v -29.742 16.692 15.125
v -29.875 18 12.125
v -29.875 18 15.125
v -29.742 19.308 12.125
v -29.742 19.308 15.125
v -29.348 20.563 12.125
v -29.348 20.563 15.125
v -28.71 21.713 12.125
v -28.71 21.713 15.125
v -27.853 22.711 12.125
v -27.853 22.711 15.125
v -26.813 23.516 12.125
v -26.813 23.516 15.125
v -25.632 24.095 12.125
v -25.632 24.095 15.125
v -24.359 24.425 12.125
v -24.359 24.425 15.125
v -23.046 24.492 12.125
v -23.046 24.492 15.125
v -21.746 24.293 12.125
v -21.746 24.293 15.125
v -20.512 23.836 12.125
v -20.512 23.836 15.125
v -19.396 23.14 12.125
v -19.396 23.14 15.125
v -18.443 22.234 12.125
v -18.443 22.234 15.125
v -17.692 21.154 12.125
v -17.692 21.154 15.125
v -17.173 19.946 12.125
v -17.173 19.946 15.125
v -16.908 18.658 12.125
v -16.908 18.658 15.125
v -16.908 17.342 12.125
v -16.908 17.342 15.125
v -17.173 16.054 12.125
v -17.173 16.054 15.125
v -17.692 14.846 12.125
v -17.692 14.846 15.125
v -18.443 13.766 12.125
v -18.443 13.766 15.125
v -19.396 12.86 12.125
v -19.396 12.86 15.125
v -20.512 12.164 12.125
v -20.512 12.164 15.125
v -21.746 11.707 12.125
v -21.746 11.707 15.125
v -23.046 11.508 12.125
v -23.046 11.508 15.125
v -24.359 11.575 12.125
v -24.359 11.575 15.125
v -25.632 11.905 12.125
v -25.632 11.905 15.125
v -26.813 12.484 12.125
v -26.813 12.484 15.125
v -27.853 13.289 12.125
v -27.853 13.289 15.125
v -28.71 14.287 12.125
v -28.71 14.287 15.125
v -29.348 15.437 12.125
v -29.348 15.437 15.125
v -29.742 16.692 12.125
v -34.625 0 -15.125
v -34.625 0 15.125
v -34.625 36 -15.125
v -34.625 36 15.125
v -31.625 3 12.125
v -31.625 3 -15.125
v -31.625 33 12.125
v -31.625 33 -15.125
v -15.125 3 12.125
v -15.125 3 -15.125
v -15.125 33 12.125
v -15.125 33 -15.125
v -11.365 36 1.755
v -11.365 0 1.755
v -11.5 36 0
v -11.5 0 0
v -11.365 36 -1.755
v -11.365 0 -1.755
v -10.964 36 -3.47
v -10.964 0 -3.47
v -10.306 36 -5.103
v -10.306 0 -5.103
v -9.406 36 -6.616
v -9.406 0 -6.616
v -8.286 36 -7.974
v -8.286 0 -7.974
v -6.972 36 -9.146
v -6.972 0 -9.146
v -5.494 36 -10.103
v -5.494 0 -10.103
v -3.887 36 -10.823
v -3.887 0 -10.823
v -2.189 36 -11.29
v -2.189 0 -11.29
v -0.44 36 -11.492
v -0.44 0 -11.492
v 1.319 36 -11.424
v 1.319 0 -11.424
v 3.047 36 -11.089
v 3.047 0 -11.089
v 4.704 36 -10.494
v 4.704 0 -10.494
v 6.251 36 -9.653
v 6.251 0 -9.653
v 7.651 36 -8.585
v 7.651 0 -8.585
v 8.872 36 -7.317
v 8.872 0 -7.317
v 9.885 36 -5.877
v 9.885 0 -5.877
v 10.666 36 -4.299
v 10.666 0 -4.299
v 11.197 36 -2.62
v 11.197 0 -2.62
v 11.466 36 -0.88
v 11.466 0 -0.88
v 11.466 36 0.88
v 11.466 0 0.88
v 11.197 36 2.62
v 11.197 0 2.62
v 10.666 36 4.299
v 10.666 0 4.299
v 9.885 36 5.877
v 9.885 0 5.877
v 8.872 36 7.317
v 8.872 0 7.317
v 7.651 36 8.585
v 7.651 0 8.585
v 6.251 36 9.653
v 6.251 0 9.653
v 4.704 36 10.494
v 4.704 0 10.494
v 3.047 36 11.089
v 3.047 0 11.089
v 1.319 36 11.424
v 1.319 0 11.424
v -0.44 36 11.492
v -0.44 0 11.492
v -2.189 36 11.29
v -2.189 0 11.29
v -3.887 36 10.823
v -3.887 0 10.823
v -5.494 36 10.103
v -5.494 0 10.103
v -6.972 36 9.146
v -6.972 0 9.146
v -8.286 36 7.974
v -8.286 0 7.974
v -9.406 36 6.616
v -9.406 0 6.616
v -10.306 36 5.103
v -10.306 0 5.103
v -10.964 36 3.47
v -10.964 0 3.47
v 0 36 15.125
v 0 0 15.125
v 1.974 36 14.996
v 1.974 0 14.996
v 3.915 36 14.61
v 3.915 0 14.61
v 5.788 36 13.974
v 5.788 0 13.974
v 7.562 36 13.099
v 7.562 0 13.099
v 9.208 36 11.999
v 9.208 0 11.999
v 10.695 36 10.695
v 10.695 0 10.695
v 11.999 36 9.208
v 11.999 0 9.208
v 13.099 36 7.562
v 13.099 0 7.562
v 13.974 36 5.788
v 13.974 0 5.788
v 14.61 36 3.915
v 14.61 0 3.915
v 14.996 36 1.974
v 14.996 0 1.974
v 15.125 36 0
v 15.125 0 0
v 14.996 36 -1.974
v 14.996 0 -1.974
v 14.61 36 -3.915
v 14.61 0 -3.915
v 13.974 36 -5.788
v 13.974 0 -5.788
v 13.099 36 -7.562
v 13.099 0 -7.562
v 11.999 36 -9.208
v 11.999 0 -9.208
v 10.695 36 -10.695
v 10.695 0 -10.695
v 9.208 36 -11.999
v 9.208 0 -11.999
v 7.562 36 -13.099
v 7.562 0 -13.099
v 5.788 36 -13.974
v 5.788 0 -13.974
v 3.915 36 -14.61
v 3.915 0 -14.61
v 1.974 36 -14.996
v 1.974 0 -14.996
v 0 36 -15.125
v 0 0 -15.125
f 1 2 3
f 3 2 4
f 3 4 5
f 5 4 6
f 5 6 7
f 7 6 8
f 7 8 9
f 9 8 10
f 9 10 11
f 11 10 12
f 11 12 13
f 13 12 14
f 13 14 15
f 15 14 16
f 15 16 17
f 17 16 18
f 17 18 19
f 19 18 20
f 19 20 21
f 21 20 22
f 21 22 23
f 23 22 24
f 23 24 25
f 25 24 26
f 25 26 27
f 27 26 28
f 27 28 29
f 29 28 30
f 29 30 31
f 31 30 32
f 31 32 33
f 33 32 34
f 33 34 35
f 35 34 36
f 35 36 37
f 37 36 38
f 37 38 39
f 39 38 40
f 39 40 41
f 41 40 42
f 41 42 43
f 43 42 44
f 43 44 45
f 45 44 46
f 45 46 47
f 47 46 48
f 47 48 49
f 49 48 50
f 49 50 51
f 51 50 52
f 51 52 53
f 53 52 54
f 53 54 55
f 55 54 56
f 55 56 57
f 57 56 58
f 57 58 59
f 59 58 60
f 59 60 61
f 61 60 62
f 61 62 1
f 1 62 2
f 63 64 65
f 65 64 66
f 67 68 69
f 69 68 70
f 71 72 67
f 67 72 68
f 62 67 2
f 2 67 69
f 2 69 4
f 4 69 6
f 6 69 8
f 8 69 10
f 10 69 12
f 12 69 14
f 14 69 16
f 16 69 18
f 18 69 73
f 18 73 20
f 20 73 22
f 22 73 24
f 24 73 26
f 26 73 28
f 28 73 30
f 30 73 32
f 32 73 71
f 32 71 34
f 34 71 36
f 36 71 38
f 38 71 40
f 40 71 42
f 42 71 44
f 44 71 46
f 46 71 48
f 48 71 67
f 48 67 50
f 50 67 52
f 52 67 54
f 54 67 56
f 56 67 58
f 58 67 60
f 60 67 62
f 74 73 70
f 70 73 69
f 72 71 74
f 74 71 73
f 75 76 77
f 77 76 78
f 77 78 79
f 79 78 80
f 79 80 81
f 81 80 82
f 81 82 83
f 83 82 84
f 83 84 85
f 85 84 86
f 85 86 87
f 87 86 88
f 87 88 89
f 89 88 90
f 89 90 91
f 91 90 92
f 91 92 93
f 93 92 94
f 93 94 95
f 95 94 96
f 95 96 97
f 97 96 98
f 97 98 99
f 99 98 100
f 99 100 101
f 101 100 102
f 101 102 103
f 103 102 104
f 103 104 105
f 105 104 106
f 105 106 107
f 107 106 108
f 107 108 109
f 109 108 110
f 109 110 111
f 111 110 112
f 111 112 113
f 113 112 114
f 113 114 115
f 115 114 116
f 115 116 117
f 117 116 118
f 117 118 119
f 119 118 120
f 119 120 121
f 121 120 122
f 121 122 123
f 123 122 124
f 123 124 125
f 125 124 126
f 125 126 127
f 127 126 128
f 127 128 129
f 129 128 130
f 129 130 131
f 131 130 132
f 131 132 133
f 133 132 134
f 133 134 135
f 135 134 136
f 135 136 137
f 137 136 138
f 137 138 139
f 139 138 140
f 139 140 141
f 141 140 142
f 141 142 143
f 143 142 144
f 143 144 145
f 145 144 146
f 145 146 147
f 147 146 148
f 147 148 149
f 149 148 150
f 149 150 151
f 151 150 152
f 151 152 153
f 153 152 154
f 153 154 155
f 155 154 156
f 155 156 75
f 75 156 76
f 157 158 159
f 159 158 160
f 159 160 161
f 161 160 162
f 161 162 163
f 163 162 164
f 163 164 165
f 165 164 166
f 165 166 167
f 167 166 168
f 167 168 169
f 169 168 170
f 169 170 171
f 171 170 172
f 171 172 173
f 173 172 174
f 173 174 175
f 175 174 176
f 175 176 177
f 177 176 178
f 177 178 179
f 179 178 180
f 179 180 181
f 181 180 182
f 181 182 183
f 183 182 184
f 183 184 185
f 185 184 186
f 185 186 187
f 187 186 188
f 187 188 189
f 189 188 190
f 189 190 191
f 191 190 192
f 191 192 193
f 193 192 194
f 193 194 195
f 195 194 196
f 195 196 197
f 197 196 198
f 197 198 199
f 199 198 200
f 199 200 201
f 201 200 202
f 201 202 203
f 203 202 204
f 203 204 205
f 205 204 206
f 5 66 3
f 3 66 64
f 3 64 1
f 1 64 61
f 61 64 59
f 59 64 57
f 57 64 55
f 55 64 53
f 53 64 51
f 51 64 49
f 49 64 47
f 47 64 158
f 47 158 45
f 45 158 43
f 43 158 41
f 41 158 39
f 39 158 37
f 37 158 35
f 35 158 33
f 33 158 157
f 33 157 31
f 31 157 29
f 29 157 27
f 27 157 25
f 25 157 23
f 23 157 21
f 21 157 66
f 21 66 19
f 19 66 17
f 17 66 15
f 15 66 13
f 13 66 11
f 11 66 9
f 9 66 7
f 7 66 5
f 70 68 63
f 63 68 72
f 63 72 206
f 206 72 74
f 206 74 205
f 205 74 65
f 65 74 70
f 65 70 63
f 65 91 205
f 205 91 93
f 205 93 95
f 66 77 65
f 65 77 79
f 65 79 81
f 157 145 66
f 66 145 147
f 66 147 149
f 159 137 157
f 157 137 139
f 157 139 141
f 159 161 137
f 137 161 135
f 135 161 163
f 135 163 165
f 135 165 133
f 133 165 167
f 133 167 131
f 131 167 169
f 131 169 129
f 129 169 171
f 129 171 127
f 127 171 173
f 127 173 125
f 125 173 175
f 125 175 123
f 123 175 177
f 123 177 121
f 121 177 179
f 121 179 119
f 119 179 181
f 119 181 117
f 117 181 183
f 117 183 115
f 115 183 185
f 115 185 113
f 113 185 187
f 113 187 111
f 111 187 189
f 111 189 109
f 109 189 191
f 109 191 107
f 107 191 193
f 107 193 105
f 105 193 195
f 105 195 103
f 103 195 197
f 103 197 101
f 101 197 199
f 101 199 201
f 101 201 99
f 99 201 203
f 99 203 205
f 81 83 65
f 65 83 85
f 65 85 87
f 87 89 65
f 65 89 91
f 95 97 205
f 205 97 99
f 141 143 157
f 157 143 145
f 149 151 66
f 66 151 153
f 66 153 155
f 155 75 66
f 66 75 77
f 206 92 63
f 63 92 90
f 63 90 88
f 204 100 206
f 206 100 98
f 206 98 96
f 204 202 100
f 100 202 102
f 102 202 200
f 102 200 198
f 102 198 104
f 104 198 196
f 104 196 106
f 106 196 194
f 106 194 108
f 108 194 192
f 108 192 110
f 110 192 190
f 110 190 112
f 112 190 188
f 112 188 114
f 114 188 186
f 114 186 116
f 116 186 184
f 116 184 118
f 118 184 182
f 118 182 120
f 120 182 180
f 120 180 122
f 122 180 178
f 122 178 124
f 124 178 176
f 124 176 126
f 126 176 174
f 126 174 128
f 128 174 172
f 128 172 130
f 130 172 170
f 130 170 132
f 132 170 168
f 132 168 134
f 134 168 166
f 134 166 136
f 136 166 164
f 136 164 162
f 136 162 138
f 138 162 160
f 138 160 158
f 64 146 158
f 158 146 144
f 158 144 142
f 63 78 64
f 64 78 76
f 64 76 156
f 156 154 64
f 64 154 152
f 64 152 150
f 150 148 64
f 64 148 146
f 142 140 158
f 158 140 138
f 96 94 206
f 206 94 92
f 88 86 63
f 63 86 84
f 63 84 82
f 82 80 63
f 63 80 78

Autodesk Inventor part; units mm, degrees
ref_plane "YZ Plane" through (0, 0, 0) normal (1, 0, 0) x (0, 1, 0)
ref_plane "XZ Plane" through (0, 0, 0) normal (0, 1, 0) x (-1, 0, 0)
ref_plane "XY Plane" through (0, 0, 0) normal (0, 0, 1) x (1, 0, 0)
sketch "Sketch1" plane through (0, 0, 0) normal (0, 1, 0) x (-1, 0, 0)
  circle A0 centre (0, 0) radius 11.5
  circle A1 centre (0, 0) radius 15.125
  line L0 (0, 15.125) -> (15.125, 15.125)
  line L1 (0, -15.125) -> (15.125, -15.125)
  line L2 (15.125, 0) -> (15.125, 15.125)
  line L3 (15.125, 0) -> (15.125, -15.125)
  dimension "d0" = 23
  dimension "d1" = 30.25
extrude "Extrusion1" add sketch "Sketch1" along normal blind 36
sketch "Sketch2" plane through (-15.125, 0, -15.125) normal (-1, 0, 0) x (0, 0, 1)
  line L0 (0.2295, 33) -> (30.25, 33)
  line L1 (30.25, 0) -> (30.25, 36) projected
  line L2 (30.25, 3) -> (0, 3)
  line L3 (0, 0) -> (0, 36) projected
  line L4 (0, 0) -> (30.25, 0) projected
  line L5 (0, 36) -> (30.25, 36) projected
  line L6 (27.25, 36) -> (27.25, 0)
  line L7 (0, 33) -> (0.2295, 33)
  point P0 (15.125, 0)
  point P1 (15.125, 3)
  point P2 (15.125, 0)
  point P3 (15.125, 36)
  point P4 (15.2397, 33)
  point P5 (27.25, 33)
  point P6 (27.25, 3)
  dimension "d4" = 3
  dimension "d5" = 3
  dimension "d6" = 3
extrude "Extrusion2" add sketch "Sketch2" along normal blind 16.5 contours L7 L3 L5 L6 L0 | L6 L5 L1 L0 | L0 L1 L2 L6 | L6 L4 L3 L2 | L2 L1 L4 L6
sketch "Sketch3" plane through (-31.625, 0, -15.125) normal (-1, 0, 0) x (0, 0, 1)
  line L0 (30.25, 0) -> (30.25, 36) projected
  line L1 (0, 36) -> (30.25, 36)
  line L2 (30.25, 36) -> (30.25, 0)
  line L3 (30.25, 0) -> (0, 0)
  line L4 (0, 0) -> (0, 36)
  point P0 (15.125, 0)
extrude "Extrusion3" add sketch "Sketch3" along normal blind 3
sketch "Sketch4" plane through (-15.125, 3, 12.125) normal (0, 0, -1) x (-1, 0, 0)
  line L0 (16.5, 30) -> (16.5, 0) projected
  line L1 (0, 30) -> (16.5, 30)
  line L2 (16.5, 30) -> (16.5, 0)
  line L3 (16.5, 0) -> (0, 0)
  line L4 (0, 0) -> (0, 30)
  line L5 (0, 30) -> (16.5, 0)
  line L6 (0, 0) -> (16.5, 30)
  circle A0 centre (8.25, 15) radius 6.5
  point P0 (-15.125, -3)
  dimension "d11" = 13
extrude "Extrusion4" cut sketch "Sketch4" against normal blind 3 contours A0 L5 L6 | L6 L5 A0 | A0 L6 L5 | L5 L6 A0
properties part number "schimbator_support"
